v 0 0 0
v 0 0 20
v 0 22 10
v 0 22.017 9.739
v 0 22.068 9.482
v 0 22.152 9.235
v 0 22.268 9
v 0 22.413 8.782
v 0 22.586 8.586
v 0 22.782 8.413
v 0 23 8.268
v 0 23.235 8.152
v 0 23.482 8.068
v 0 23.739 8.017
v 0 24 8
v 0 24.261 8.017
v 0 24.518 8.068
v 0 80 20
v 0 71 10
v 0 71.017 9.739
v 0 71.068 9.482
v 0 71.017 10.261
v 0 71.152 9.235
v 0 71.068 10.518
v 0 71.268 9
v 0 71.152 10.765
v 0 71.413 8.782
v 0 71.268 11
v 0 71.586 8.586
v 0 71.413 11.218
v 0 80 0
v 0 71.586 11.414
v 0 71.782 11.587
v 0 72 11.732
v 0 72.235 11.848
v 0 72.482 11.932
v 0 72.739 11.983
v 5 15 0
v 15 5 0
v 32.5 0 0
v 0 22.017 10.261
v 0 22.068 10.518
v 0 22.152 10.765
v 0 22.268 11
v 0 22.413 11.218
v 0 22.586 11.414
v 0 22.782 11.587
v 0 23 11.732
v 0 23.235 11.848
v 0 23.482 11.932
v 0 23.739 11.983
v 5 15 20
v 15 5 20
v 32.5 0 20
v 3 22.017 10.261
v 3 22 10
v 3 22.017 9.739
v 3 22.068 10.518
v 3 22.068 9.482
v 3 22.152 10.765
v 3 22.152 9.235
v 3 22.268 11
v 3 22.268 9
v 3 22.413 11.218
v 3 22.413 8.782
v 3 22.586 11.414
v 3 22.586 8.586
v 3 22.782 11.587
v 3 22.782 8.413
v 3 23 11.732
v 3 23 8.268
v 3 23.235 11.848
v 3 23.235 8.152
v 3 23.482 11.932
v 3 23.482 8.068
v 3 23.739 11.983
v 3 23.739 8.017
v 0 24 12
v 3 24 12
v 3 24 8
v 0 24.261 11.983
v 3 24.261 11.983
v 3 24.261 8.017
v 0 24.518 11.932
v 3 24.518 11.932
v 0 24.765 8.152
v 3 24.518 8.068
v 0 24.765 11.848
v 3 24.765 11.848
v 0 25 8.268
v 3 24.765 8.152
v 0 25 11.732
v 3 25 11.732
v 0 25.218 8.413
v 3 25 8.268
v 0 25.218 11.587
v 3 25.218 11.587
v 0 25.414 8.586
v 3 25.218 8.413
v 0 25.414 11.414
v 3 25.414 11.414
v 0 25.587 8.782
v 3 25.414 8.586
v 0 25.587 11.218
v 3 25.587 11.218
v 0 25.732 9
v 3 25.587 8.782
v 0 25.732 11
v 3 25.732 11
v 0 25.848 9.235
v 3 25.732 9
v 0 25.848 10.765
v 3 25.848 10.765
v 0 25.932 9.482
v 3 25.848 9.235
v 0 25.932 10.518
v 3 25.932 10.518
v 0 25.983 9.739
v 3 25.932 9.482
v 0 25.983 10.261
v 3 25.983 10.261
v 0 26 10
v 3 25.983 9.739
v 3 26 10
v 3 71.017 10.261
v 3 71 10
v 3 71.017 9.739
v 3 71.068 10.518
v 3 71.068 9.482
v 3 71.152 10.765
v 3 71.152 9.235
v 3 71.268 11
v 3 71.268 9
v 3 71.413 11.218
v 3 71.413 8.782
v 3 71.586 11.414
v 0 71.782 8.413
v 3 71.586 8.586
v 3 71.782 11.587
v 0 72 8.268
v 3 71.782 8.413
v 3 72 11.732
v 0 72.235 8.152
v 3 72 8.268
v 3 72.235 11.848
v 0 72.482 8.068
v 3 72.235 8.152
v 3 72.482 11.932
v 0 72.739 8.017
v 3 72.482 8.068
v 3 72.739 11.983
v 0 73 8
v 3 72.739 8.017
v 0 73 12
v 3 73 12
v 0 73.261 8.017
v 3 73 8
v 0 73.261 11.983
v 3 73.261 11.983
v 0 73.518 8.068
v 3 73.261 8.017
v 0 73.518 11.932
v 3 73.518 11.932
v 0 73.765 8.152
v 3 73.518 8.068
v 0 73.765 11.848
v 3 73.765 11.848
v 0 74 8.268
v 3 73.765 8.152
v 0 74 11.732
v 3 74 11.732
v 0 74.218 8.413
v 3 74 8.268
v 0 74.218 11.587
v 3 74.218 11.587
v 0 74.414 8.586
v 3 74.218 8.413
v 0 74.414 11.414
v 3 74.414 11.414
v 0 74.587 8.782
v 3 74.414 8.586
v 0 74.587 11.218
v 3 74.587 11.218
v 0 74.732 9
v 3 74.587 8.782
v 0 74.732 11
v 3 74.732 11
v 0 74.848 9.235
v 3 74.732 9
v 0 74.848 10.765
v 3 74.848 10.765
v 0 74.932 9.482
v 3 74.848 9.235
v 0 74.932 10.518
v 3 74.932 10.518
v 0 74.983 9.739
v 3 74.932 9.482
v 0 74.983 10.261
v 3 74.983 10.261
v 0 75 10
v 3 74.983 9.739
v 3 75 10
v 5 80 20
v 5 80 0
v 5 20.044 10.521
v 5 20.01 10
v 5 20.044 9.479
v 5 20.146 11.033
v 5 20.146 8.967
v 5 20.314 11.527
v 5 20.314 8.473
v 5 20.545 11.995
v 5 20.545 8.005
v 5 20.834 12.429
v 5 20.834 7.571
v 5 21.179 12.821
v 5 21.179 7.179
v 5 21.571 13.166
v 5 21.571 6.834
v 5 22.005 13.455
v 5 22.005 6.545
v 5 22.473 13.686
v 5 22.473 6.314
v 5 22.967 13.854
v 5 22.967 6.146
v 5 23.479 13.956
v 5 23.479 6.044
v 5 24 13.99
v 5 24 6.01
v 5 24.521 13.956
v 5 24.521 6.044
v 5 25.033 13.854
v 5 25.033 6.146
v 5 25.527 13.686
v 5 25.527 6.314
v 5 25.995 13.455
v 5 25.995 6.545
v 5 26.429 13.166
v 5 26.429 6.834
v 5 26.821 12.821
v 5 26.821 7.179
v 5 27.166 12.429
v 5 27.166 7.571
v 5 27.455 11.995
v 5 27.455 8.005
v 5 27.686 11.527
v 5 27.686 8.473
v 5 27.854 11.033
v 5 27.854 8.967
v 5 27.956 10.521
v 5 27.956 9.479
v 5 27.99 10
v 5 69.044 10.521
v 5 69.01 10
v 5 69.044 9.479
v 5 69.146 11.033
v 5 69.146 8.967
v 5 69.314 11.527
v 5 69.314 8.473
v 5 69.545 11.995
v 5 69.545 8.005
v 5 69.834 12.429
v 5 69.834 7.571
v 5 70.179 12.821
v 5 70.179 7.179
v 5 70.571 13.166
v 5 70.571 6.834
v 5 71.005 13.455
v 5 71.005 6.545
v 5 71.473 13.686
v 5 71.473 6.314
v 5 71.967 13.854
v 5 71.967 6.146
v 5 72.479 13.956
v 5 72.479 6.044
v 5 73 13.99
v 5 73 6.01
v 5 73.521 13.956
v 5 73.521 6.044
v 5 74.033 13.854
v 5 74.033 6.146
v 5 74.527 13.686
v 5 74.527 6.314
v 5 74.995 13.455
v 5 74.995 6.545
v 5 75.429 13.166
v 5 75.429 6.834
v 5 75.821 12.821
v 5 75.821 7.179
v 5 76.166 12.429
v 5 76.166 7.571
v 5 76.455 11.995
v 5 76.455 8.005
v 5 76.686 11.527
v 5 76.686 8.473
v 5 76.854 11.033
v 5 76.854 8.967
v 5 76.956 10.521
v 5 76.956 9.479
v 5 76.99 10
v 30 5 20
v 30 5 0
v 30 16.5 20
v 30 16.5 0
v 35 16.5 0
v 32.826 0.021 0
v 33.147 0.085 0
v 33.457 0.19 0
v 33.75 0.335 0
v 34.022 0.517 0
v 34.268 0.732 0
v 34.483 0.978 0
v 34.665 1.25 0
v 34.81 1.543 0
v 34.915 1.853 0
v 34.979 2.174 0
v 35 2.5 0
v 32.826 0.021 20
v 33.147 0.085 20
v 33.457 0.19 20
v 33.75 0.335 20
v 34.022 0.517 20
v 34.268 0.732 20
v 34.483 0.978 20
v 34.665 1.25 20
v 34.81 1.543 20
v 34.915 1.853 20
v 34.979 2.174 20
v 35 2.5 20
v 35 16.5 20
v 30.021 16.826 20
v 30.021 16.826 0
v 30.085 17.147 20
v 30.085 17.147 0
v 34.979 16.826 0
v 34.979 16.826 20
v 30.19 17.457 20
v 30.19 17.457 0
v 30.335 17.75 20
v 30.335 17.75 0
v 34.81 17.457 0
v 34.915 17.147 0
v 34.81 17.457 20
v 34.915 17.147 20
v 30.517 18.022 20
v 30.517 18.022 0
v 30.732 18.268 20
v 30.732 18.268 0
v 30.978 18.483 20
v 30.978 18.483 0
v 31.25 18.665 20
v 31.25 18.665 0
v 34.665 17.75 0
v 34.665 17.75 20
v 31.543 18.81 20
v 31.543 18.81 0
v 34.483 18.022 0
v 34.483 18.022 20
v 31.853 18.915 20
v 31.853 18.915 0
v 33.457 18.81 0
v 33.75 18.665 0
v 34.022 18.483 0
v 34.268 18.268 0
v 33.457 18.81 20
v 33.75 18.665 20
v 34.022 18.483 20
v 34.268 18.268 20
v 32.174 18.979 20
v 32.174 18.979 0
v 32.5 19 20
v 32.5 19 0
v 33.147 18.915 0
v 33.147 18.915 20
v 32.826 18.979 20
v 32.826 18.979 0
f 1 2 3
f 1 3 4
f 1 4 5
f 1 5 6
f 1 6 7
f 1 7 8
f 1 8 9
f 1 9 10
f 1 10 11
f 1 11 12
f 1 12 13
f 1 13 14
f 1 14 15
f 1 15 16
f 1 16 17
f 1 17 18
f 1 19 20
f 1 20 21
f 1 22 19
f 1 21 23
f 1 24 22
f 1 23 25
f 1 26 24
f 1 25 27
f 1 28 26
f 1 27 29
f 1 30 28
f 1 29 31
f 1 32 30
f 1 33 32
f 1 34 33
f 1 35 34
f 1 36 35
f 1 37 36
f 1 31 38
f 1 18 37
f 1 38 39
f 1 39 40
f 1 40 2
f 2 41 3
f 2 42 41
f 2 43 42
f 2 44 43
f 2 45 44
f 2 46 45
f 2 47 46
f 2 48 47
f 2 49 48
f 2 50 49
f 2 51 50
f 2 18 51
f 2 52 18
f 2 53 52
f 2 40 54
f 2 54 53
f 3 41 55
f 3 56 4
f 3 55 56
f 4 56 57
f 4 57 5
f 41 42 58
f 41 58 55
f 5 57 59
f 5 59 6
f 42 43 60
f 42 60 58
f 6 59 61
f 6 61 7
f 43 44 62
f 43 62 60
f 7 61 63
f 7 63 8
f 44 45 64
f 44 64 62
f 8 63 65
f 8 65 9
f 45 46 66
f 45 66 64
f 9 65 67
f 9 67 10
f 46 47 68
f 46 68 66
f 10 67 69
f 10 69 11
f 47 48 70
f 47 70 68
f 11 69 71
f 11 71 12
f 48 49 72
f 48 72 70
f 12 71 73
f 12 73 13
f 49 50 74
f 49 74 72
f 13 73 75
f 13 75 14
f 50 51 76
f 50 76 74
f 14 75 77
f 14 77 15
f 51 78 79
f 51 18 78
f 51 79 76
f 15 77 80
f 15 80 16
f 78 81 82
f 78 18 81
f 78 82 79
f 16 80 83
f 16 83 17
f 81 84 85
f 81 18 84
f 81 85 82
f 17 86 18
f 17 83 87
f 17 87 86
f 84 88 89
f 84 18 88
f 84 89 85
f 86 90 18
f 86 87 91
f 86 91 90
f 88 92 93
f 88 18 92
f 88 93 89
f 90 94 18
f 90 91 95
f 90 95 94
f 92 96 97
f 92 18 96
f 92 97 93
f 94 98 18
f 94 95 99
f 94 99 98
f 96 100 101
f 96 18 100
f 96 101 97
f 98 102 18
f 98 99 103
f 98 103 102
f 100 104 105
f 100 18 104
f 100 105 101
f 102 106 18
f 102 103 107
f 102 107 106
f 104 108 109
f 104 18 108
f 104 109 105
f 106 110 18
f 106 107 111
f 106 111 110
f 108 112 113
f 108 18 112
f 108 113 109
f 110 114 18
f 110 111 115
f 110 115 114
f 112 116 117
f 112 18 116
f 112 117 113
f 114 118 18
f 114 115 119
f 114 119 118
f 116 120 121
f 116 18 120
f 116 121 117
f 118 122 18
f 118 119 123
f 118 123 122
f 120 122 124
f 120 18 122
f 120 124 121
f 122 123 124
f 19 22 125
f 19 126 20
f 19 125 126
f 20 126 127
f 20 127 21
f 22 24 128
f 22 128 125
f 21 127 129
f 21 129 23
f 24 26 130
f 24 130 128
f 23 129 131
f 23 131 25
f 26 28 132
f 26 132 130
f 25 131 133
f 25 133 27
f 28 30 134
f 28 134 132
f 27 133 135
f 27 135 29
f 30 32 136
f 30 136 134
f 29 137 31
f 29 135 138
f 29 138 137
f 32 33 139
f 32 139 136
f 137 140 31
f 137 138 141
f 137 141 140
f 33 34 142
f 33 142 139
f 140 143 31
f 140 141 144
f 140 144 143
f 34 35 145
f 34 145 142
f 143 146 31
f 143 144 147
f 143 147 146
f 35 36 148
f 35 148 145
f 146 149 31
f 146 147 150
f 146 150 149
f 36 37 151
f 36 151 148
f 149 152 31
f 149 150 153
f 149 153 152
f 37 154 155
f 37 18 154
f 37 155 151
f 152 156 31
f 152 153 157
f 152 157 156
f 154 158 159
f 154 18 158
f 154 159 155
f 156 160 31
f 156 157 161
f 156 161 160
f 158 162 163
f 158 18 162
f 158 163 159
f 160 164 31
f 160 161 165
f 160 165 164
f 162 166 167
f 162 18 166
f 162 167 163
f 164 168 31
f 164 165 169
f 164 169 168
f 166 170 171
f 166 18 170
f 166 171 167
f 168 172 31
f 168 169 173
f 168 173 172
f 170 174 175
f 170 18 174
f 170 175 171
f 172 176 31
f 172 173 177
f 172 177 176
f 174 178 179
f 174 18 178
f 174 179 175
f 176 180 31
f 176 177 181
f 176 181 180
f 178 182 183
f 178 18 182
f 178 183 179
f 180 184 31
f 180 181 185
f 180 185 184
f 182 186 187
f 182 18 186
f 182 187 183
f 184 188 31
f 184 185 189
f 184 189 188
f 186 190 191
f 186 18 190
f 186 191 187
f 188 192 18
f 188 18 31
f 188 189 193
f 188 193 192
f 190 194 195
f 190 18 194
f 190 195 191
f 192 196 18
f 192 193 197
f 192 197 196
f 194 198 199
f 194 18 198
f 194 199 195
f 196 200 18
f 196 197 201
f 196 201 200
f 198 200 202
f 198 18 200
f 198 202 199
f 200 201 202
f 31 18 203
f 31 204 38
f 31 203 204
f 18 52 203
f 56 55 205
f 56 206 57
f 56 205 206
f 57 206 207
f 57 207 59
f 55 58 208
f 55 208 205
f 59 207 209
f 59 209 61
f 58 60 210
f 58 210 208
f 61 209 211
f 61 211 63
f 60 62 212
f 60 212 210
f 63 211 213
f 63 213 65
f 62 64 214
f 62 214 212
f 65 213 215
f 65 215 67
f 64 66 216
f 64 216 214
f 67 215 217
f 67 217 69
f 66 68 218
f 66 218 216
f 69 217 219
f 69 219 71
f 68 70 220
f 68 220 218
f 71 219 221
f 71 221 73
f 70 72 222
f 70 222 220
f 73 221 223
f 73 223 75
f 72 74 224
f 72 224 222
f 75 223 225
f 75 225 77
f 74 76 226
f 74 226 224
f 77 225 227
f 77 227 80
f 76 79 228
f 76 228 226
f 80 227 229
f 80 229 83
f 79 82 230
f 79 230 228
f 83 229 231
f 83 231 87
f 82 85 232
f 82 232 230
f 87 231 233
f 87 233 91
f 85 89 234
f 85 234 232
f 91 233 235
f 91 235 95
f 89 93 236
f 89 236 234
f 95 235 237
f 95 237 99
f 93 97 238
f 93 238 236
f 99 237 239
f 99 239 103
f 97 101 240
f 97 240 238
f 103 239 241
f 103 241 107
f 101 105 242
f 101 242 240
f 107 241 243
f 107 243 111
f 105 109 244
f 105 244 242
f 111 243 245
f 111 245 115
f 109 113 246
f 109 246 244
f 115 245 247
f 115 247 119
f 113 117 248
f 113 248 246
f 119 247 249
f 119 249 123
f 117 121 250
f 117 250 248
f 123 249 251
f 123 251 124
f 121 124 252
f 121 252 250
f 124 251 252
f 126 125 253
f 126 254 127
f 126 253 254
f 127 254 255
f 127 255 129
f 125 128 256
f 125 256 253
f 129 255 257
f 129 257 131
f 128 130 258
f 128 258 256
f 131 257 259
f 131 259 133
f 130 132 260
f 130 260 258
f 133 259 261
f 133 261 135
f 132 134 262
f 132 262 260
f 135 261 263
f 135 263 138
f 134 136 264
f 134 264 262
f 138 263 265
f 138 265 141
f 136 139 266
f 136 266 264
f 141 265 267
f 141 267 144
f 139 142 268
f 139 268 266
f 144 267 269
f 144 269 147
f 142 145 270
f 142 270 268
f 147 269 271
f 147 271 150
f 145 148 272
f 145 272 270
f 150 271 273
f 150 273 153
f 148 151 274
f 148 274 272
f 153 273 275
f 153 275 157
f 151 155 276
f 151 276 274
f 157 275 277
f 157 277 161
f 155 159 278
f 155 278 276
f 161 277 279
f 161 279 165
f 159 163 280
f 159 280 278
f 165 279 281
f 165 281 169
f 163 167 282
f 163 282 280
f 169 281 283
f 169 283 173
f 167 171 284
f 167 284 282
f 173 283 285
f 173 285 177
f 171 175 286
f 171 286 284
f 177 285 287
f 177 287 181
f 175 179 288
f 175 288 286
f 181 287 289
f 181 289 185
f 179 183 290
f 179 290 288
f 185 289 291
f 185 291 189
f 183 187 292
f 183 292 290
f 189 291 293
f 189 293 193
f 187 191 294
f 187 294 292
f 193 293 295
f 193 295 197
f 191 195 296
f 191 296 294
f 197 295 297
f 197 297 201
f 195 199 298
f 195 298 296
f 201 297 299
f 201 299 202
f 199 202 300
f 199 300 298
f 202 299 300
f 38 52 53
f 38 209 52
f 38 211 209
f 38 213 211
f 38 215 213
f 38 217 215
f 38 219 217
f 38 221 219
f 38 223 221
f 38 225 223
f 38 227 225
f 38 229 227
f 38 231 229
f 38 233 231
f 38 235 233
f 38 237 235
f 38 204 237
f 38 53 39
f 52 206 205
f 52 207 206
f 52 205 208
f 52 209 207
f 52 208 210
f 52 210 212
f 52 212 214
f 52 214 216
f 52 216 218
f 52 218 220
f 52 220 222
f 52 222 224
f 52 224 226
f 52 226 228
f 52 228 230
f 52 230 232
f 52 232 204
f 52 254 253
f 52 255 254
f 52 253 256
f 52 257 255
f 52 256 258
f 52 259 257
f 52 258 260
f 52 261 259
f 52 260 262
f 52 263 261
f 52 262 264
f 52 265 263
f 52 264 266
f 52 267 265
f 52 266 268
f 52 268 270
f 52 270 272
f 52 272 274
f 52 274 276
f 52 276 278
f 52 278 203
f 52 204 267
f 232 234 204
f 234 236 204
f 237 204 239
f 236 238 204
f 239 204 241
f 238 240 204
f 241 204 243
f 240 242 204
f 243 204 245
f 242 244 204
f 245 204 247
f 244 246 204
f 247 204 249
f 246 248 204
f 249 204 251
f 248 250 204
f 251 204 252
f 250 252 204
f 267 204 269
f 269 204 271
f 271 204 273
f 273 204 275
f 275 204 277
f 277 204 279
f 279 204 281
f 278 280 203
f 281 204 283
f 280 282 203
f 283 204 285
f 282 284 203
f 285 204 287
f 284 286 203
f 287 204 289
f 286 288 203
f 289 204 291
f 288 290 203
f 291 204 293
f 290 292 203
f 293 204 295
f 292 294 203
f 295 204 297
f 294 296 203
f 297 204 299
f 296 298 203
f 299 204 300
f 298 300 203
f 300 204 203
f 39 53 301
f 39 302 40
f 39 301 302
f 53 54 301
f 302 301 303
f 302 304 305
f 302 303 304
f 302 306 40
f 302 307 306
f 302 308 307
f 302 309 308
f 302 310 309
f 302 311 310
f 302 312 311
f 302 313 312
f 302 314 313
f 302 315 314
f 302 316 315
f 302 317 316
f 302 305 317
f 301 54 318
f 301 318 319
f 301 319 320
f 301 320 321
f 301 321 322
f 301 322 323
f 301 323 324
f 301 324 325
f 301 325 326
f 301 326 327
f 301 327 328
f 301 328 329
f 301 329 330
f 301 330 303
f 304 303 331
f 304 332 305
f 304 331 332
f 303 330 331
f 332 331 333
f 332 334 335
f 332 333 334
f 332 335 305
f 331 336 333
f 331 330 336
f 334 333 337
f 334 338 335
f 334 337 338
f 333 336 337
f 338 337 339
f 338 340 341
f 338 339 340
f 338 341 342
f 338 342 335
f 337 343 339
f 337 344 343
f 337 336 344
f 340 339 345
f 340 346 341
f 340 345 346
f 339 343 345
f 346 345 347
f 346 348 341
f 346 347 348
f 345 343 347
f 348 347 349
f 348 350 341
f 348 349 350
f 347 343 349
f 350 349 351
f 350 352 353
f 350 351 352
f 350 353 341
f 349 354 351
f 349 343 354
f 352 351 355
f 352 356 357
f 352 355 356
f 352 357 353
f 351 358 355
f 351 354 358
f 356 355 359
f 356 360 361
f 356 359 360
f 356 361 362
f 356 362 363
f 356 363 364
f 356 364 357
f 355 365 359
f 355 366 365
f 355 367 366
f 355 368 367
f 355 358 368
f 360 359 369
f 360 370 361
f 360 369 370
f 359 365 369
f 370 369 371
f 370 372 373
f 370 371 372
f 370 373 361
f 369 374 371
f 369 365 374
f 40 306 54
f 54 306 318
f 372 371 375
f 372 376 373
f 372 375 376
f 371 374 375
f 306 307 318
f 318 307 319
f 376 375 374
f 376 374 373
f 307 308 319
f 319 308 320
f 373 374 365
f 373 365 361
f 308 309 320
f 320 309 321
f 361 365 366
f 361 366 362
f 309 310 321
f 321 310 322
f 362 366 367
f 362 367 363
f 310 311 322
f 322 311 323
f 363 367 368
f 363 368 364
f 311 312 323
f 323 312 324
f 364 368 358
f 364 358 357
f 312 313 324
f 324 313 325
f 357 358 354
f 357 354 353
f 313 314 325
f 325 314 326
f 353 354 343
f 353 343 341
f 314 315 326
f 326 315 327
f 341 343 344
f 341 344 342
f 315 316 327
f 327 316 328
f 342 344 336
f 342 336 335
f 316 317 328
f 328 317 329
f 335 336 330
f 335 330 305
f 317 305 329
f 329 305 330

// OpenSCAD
// Wall hook with two countersunk screw holes.
// Drawn lying on its side, the way it should be printed: layers run along the hook, so it is strong.

// Hook width (mm)
width = 20; // [10:1:40]
// Back plate height (mm)
plate_height = 80; // [70:1:140]
// How far the hook reaches out from the wall (mm)
reach = 25; // [10:1:50]
// Height of the upturned tip (mm)
tip = 14; // [8:1:20]
// Material thickness (mm)
thickness = 5; // [4:0.5:8]
// Screw shaft diameter (mm)
screw_d = 4; // [3:0.5:6]

/* [Hidden] */
$fn = 48;

arm_len = thickness + reach + thickness;
fillet = reach * 0.4;
// the lower screw sits above the tip and the fillet, so a screwdriver can reach it
lower_hole = thickness + max(tip, fillet) + screw_d + 1;
upper_hole = plate_height - screw_d - 3;

module profile() {
  // back plate, against the wall
  square([thickness, plate_height]);
  // arm with a rounded outer corner
  hull() {
    square([thickness, thickness]);
    translate([arm_len - thickness / 2, thickness / 2]) circle(d = thickness);
  }
  // upturned tip with a rounded end
  hull() {
    translate([arm_len - thickness / 2, thickness / 2]) circle(d = thickness);
    translate([arm_len - thickness / 2, thickness + tip - thickness / 2]) circle(d = thickness);
  }
  // fillet where the arm meets the plate
  polygon([
    [thickness, thickness],
    [thickness + fillet, thickness],
    [thickness, thickness + fillet],
  ]);
}

module screw_hole(y) {
  translate([0, y, width / 2]) rotate([0, 90, 0]) {
    translate([0, 0, -1]) cylinder(d = screw_d, h = thickness + 2);
    translate([0, 0, thickness - screw_d / 2])
      cylinder(d1 = screw_d, d2 = 2 * screw_d, h = screw_d / 2 + 0.01);
  }
}

difference() {
  linear_extrude(width) profile();
  screw_hole(lower_hole);
  screw_hole(upper_hole);
}
